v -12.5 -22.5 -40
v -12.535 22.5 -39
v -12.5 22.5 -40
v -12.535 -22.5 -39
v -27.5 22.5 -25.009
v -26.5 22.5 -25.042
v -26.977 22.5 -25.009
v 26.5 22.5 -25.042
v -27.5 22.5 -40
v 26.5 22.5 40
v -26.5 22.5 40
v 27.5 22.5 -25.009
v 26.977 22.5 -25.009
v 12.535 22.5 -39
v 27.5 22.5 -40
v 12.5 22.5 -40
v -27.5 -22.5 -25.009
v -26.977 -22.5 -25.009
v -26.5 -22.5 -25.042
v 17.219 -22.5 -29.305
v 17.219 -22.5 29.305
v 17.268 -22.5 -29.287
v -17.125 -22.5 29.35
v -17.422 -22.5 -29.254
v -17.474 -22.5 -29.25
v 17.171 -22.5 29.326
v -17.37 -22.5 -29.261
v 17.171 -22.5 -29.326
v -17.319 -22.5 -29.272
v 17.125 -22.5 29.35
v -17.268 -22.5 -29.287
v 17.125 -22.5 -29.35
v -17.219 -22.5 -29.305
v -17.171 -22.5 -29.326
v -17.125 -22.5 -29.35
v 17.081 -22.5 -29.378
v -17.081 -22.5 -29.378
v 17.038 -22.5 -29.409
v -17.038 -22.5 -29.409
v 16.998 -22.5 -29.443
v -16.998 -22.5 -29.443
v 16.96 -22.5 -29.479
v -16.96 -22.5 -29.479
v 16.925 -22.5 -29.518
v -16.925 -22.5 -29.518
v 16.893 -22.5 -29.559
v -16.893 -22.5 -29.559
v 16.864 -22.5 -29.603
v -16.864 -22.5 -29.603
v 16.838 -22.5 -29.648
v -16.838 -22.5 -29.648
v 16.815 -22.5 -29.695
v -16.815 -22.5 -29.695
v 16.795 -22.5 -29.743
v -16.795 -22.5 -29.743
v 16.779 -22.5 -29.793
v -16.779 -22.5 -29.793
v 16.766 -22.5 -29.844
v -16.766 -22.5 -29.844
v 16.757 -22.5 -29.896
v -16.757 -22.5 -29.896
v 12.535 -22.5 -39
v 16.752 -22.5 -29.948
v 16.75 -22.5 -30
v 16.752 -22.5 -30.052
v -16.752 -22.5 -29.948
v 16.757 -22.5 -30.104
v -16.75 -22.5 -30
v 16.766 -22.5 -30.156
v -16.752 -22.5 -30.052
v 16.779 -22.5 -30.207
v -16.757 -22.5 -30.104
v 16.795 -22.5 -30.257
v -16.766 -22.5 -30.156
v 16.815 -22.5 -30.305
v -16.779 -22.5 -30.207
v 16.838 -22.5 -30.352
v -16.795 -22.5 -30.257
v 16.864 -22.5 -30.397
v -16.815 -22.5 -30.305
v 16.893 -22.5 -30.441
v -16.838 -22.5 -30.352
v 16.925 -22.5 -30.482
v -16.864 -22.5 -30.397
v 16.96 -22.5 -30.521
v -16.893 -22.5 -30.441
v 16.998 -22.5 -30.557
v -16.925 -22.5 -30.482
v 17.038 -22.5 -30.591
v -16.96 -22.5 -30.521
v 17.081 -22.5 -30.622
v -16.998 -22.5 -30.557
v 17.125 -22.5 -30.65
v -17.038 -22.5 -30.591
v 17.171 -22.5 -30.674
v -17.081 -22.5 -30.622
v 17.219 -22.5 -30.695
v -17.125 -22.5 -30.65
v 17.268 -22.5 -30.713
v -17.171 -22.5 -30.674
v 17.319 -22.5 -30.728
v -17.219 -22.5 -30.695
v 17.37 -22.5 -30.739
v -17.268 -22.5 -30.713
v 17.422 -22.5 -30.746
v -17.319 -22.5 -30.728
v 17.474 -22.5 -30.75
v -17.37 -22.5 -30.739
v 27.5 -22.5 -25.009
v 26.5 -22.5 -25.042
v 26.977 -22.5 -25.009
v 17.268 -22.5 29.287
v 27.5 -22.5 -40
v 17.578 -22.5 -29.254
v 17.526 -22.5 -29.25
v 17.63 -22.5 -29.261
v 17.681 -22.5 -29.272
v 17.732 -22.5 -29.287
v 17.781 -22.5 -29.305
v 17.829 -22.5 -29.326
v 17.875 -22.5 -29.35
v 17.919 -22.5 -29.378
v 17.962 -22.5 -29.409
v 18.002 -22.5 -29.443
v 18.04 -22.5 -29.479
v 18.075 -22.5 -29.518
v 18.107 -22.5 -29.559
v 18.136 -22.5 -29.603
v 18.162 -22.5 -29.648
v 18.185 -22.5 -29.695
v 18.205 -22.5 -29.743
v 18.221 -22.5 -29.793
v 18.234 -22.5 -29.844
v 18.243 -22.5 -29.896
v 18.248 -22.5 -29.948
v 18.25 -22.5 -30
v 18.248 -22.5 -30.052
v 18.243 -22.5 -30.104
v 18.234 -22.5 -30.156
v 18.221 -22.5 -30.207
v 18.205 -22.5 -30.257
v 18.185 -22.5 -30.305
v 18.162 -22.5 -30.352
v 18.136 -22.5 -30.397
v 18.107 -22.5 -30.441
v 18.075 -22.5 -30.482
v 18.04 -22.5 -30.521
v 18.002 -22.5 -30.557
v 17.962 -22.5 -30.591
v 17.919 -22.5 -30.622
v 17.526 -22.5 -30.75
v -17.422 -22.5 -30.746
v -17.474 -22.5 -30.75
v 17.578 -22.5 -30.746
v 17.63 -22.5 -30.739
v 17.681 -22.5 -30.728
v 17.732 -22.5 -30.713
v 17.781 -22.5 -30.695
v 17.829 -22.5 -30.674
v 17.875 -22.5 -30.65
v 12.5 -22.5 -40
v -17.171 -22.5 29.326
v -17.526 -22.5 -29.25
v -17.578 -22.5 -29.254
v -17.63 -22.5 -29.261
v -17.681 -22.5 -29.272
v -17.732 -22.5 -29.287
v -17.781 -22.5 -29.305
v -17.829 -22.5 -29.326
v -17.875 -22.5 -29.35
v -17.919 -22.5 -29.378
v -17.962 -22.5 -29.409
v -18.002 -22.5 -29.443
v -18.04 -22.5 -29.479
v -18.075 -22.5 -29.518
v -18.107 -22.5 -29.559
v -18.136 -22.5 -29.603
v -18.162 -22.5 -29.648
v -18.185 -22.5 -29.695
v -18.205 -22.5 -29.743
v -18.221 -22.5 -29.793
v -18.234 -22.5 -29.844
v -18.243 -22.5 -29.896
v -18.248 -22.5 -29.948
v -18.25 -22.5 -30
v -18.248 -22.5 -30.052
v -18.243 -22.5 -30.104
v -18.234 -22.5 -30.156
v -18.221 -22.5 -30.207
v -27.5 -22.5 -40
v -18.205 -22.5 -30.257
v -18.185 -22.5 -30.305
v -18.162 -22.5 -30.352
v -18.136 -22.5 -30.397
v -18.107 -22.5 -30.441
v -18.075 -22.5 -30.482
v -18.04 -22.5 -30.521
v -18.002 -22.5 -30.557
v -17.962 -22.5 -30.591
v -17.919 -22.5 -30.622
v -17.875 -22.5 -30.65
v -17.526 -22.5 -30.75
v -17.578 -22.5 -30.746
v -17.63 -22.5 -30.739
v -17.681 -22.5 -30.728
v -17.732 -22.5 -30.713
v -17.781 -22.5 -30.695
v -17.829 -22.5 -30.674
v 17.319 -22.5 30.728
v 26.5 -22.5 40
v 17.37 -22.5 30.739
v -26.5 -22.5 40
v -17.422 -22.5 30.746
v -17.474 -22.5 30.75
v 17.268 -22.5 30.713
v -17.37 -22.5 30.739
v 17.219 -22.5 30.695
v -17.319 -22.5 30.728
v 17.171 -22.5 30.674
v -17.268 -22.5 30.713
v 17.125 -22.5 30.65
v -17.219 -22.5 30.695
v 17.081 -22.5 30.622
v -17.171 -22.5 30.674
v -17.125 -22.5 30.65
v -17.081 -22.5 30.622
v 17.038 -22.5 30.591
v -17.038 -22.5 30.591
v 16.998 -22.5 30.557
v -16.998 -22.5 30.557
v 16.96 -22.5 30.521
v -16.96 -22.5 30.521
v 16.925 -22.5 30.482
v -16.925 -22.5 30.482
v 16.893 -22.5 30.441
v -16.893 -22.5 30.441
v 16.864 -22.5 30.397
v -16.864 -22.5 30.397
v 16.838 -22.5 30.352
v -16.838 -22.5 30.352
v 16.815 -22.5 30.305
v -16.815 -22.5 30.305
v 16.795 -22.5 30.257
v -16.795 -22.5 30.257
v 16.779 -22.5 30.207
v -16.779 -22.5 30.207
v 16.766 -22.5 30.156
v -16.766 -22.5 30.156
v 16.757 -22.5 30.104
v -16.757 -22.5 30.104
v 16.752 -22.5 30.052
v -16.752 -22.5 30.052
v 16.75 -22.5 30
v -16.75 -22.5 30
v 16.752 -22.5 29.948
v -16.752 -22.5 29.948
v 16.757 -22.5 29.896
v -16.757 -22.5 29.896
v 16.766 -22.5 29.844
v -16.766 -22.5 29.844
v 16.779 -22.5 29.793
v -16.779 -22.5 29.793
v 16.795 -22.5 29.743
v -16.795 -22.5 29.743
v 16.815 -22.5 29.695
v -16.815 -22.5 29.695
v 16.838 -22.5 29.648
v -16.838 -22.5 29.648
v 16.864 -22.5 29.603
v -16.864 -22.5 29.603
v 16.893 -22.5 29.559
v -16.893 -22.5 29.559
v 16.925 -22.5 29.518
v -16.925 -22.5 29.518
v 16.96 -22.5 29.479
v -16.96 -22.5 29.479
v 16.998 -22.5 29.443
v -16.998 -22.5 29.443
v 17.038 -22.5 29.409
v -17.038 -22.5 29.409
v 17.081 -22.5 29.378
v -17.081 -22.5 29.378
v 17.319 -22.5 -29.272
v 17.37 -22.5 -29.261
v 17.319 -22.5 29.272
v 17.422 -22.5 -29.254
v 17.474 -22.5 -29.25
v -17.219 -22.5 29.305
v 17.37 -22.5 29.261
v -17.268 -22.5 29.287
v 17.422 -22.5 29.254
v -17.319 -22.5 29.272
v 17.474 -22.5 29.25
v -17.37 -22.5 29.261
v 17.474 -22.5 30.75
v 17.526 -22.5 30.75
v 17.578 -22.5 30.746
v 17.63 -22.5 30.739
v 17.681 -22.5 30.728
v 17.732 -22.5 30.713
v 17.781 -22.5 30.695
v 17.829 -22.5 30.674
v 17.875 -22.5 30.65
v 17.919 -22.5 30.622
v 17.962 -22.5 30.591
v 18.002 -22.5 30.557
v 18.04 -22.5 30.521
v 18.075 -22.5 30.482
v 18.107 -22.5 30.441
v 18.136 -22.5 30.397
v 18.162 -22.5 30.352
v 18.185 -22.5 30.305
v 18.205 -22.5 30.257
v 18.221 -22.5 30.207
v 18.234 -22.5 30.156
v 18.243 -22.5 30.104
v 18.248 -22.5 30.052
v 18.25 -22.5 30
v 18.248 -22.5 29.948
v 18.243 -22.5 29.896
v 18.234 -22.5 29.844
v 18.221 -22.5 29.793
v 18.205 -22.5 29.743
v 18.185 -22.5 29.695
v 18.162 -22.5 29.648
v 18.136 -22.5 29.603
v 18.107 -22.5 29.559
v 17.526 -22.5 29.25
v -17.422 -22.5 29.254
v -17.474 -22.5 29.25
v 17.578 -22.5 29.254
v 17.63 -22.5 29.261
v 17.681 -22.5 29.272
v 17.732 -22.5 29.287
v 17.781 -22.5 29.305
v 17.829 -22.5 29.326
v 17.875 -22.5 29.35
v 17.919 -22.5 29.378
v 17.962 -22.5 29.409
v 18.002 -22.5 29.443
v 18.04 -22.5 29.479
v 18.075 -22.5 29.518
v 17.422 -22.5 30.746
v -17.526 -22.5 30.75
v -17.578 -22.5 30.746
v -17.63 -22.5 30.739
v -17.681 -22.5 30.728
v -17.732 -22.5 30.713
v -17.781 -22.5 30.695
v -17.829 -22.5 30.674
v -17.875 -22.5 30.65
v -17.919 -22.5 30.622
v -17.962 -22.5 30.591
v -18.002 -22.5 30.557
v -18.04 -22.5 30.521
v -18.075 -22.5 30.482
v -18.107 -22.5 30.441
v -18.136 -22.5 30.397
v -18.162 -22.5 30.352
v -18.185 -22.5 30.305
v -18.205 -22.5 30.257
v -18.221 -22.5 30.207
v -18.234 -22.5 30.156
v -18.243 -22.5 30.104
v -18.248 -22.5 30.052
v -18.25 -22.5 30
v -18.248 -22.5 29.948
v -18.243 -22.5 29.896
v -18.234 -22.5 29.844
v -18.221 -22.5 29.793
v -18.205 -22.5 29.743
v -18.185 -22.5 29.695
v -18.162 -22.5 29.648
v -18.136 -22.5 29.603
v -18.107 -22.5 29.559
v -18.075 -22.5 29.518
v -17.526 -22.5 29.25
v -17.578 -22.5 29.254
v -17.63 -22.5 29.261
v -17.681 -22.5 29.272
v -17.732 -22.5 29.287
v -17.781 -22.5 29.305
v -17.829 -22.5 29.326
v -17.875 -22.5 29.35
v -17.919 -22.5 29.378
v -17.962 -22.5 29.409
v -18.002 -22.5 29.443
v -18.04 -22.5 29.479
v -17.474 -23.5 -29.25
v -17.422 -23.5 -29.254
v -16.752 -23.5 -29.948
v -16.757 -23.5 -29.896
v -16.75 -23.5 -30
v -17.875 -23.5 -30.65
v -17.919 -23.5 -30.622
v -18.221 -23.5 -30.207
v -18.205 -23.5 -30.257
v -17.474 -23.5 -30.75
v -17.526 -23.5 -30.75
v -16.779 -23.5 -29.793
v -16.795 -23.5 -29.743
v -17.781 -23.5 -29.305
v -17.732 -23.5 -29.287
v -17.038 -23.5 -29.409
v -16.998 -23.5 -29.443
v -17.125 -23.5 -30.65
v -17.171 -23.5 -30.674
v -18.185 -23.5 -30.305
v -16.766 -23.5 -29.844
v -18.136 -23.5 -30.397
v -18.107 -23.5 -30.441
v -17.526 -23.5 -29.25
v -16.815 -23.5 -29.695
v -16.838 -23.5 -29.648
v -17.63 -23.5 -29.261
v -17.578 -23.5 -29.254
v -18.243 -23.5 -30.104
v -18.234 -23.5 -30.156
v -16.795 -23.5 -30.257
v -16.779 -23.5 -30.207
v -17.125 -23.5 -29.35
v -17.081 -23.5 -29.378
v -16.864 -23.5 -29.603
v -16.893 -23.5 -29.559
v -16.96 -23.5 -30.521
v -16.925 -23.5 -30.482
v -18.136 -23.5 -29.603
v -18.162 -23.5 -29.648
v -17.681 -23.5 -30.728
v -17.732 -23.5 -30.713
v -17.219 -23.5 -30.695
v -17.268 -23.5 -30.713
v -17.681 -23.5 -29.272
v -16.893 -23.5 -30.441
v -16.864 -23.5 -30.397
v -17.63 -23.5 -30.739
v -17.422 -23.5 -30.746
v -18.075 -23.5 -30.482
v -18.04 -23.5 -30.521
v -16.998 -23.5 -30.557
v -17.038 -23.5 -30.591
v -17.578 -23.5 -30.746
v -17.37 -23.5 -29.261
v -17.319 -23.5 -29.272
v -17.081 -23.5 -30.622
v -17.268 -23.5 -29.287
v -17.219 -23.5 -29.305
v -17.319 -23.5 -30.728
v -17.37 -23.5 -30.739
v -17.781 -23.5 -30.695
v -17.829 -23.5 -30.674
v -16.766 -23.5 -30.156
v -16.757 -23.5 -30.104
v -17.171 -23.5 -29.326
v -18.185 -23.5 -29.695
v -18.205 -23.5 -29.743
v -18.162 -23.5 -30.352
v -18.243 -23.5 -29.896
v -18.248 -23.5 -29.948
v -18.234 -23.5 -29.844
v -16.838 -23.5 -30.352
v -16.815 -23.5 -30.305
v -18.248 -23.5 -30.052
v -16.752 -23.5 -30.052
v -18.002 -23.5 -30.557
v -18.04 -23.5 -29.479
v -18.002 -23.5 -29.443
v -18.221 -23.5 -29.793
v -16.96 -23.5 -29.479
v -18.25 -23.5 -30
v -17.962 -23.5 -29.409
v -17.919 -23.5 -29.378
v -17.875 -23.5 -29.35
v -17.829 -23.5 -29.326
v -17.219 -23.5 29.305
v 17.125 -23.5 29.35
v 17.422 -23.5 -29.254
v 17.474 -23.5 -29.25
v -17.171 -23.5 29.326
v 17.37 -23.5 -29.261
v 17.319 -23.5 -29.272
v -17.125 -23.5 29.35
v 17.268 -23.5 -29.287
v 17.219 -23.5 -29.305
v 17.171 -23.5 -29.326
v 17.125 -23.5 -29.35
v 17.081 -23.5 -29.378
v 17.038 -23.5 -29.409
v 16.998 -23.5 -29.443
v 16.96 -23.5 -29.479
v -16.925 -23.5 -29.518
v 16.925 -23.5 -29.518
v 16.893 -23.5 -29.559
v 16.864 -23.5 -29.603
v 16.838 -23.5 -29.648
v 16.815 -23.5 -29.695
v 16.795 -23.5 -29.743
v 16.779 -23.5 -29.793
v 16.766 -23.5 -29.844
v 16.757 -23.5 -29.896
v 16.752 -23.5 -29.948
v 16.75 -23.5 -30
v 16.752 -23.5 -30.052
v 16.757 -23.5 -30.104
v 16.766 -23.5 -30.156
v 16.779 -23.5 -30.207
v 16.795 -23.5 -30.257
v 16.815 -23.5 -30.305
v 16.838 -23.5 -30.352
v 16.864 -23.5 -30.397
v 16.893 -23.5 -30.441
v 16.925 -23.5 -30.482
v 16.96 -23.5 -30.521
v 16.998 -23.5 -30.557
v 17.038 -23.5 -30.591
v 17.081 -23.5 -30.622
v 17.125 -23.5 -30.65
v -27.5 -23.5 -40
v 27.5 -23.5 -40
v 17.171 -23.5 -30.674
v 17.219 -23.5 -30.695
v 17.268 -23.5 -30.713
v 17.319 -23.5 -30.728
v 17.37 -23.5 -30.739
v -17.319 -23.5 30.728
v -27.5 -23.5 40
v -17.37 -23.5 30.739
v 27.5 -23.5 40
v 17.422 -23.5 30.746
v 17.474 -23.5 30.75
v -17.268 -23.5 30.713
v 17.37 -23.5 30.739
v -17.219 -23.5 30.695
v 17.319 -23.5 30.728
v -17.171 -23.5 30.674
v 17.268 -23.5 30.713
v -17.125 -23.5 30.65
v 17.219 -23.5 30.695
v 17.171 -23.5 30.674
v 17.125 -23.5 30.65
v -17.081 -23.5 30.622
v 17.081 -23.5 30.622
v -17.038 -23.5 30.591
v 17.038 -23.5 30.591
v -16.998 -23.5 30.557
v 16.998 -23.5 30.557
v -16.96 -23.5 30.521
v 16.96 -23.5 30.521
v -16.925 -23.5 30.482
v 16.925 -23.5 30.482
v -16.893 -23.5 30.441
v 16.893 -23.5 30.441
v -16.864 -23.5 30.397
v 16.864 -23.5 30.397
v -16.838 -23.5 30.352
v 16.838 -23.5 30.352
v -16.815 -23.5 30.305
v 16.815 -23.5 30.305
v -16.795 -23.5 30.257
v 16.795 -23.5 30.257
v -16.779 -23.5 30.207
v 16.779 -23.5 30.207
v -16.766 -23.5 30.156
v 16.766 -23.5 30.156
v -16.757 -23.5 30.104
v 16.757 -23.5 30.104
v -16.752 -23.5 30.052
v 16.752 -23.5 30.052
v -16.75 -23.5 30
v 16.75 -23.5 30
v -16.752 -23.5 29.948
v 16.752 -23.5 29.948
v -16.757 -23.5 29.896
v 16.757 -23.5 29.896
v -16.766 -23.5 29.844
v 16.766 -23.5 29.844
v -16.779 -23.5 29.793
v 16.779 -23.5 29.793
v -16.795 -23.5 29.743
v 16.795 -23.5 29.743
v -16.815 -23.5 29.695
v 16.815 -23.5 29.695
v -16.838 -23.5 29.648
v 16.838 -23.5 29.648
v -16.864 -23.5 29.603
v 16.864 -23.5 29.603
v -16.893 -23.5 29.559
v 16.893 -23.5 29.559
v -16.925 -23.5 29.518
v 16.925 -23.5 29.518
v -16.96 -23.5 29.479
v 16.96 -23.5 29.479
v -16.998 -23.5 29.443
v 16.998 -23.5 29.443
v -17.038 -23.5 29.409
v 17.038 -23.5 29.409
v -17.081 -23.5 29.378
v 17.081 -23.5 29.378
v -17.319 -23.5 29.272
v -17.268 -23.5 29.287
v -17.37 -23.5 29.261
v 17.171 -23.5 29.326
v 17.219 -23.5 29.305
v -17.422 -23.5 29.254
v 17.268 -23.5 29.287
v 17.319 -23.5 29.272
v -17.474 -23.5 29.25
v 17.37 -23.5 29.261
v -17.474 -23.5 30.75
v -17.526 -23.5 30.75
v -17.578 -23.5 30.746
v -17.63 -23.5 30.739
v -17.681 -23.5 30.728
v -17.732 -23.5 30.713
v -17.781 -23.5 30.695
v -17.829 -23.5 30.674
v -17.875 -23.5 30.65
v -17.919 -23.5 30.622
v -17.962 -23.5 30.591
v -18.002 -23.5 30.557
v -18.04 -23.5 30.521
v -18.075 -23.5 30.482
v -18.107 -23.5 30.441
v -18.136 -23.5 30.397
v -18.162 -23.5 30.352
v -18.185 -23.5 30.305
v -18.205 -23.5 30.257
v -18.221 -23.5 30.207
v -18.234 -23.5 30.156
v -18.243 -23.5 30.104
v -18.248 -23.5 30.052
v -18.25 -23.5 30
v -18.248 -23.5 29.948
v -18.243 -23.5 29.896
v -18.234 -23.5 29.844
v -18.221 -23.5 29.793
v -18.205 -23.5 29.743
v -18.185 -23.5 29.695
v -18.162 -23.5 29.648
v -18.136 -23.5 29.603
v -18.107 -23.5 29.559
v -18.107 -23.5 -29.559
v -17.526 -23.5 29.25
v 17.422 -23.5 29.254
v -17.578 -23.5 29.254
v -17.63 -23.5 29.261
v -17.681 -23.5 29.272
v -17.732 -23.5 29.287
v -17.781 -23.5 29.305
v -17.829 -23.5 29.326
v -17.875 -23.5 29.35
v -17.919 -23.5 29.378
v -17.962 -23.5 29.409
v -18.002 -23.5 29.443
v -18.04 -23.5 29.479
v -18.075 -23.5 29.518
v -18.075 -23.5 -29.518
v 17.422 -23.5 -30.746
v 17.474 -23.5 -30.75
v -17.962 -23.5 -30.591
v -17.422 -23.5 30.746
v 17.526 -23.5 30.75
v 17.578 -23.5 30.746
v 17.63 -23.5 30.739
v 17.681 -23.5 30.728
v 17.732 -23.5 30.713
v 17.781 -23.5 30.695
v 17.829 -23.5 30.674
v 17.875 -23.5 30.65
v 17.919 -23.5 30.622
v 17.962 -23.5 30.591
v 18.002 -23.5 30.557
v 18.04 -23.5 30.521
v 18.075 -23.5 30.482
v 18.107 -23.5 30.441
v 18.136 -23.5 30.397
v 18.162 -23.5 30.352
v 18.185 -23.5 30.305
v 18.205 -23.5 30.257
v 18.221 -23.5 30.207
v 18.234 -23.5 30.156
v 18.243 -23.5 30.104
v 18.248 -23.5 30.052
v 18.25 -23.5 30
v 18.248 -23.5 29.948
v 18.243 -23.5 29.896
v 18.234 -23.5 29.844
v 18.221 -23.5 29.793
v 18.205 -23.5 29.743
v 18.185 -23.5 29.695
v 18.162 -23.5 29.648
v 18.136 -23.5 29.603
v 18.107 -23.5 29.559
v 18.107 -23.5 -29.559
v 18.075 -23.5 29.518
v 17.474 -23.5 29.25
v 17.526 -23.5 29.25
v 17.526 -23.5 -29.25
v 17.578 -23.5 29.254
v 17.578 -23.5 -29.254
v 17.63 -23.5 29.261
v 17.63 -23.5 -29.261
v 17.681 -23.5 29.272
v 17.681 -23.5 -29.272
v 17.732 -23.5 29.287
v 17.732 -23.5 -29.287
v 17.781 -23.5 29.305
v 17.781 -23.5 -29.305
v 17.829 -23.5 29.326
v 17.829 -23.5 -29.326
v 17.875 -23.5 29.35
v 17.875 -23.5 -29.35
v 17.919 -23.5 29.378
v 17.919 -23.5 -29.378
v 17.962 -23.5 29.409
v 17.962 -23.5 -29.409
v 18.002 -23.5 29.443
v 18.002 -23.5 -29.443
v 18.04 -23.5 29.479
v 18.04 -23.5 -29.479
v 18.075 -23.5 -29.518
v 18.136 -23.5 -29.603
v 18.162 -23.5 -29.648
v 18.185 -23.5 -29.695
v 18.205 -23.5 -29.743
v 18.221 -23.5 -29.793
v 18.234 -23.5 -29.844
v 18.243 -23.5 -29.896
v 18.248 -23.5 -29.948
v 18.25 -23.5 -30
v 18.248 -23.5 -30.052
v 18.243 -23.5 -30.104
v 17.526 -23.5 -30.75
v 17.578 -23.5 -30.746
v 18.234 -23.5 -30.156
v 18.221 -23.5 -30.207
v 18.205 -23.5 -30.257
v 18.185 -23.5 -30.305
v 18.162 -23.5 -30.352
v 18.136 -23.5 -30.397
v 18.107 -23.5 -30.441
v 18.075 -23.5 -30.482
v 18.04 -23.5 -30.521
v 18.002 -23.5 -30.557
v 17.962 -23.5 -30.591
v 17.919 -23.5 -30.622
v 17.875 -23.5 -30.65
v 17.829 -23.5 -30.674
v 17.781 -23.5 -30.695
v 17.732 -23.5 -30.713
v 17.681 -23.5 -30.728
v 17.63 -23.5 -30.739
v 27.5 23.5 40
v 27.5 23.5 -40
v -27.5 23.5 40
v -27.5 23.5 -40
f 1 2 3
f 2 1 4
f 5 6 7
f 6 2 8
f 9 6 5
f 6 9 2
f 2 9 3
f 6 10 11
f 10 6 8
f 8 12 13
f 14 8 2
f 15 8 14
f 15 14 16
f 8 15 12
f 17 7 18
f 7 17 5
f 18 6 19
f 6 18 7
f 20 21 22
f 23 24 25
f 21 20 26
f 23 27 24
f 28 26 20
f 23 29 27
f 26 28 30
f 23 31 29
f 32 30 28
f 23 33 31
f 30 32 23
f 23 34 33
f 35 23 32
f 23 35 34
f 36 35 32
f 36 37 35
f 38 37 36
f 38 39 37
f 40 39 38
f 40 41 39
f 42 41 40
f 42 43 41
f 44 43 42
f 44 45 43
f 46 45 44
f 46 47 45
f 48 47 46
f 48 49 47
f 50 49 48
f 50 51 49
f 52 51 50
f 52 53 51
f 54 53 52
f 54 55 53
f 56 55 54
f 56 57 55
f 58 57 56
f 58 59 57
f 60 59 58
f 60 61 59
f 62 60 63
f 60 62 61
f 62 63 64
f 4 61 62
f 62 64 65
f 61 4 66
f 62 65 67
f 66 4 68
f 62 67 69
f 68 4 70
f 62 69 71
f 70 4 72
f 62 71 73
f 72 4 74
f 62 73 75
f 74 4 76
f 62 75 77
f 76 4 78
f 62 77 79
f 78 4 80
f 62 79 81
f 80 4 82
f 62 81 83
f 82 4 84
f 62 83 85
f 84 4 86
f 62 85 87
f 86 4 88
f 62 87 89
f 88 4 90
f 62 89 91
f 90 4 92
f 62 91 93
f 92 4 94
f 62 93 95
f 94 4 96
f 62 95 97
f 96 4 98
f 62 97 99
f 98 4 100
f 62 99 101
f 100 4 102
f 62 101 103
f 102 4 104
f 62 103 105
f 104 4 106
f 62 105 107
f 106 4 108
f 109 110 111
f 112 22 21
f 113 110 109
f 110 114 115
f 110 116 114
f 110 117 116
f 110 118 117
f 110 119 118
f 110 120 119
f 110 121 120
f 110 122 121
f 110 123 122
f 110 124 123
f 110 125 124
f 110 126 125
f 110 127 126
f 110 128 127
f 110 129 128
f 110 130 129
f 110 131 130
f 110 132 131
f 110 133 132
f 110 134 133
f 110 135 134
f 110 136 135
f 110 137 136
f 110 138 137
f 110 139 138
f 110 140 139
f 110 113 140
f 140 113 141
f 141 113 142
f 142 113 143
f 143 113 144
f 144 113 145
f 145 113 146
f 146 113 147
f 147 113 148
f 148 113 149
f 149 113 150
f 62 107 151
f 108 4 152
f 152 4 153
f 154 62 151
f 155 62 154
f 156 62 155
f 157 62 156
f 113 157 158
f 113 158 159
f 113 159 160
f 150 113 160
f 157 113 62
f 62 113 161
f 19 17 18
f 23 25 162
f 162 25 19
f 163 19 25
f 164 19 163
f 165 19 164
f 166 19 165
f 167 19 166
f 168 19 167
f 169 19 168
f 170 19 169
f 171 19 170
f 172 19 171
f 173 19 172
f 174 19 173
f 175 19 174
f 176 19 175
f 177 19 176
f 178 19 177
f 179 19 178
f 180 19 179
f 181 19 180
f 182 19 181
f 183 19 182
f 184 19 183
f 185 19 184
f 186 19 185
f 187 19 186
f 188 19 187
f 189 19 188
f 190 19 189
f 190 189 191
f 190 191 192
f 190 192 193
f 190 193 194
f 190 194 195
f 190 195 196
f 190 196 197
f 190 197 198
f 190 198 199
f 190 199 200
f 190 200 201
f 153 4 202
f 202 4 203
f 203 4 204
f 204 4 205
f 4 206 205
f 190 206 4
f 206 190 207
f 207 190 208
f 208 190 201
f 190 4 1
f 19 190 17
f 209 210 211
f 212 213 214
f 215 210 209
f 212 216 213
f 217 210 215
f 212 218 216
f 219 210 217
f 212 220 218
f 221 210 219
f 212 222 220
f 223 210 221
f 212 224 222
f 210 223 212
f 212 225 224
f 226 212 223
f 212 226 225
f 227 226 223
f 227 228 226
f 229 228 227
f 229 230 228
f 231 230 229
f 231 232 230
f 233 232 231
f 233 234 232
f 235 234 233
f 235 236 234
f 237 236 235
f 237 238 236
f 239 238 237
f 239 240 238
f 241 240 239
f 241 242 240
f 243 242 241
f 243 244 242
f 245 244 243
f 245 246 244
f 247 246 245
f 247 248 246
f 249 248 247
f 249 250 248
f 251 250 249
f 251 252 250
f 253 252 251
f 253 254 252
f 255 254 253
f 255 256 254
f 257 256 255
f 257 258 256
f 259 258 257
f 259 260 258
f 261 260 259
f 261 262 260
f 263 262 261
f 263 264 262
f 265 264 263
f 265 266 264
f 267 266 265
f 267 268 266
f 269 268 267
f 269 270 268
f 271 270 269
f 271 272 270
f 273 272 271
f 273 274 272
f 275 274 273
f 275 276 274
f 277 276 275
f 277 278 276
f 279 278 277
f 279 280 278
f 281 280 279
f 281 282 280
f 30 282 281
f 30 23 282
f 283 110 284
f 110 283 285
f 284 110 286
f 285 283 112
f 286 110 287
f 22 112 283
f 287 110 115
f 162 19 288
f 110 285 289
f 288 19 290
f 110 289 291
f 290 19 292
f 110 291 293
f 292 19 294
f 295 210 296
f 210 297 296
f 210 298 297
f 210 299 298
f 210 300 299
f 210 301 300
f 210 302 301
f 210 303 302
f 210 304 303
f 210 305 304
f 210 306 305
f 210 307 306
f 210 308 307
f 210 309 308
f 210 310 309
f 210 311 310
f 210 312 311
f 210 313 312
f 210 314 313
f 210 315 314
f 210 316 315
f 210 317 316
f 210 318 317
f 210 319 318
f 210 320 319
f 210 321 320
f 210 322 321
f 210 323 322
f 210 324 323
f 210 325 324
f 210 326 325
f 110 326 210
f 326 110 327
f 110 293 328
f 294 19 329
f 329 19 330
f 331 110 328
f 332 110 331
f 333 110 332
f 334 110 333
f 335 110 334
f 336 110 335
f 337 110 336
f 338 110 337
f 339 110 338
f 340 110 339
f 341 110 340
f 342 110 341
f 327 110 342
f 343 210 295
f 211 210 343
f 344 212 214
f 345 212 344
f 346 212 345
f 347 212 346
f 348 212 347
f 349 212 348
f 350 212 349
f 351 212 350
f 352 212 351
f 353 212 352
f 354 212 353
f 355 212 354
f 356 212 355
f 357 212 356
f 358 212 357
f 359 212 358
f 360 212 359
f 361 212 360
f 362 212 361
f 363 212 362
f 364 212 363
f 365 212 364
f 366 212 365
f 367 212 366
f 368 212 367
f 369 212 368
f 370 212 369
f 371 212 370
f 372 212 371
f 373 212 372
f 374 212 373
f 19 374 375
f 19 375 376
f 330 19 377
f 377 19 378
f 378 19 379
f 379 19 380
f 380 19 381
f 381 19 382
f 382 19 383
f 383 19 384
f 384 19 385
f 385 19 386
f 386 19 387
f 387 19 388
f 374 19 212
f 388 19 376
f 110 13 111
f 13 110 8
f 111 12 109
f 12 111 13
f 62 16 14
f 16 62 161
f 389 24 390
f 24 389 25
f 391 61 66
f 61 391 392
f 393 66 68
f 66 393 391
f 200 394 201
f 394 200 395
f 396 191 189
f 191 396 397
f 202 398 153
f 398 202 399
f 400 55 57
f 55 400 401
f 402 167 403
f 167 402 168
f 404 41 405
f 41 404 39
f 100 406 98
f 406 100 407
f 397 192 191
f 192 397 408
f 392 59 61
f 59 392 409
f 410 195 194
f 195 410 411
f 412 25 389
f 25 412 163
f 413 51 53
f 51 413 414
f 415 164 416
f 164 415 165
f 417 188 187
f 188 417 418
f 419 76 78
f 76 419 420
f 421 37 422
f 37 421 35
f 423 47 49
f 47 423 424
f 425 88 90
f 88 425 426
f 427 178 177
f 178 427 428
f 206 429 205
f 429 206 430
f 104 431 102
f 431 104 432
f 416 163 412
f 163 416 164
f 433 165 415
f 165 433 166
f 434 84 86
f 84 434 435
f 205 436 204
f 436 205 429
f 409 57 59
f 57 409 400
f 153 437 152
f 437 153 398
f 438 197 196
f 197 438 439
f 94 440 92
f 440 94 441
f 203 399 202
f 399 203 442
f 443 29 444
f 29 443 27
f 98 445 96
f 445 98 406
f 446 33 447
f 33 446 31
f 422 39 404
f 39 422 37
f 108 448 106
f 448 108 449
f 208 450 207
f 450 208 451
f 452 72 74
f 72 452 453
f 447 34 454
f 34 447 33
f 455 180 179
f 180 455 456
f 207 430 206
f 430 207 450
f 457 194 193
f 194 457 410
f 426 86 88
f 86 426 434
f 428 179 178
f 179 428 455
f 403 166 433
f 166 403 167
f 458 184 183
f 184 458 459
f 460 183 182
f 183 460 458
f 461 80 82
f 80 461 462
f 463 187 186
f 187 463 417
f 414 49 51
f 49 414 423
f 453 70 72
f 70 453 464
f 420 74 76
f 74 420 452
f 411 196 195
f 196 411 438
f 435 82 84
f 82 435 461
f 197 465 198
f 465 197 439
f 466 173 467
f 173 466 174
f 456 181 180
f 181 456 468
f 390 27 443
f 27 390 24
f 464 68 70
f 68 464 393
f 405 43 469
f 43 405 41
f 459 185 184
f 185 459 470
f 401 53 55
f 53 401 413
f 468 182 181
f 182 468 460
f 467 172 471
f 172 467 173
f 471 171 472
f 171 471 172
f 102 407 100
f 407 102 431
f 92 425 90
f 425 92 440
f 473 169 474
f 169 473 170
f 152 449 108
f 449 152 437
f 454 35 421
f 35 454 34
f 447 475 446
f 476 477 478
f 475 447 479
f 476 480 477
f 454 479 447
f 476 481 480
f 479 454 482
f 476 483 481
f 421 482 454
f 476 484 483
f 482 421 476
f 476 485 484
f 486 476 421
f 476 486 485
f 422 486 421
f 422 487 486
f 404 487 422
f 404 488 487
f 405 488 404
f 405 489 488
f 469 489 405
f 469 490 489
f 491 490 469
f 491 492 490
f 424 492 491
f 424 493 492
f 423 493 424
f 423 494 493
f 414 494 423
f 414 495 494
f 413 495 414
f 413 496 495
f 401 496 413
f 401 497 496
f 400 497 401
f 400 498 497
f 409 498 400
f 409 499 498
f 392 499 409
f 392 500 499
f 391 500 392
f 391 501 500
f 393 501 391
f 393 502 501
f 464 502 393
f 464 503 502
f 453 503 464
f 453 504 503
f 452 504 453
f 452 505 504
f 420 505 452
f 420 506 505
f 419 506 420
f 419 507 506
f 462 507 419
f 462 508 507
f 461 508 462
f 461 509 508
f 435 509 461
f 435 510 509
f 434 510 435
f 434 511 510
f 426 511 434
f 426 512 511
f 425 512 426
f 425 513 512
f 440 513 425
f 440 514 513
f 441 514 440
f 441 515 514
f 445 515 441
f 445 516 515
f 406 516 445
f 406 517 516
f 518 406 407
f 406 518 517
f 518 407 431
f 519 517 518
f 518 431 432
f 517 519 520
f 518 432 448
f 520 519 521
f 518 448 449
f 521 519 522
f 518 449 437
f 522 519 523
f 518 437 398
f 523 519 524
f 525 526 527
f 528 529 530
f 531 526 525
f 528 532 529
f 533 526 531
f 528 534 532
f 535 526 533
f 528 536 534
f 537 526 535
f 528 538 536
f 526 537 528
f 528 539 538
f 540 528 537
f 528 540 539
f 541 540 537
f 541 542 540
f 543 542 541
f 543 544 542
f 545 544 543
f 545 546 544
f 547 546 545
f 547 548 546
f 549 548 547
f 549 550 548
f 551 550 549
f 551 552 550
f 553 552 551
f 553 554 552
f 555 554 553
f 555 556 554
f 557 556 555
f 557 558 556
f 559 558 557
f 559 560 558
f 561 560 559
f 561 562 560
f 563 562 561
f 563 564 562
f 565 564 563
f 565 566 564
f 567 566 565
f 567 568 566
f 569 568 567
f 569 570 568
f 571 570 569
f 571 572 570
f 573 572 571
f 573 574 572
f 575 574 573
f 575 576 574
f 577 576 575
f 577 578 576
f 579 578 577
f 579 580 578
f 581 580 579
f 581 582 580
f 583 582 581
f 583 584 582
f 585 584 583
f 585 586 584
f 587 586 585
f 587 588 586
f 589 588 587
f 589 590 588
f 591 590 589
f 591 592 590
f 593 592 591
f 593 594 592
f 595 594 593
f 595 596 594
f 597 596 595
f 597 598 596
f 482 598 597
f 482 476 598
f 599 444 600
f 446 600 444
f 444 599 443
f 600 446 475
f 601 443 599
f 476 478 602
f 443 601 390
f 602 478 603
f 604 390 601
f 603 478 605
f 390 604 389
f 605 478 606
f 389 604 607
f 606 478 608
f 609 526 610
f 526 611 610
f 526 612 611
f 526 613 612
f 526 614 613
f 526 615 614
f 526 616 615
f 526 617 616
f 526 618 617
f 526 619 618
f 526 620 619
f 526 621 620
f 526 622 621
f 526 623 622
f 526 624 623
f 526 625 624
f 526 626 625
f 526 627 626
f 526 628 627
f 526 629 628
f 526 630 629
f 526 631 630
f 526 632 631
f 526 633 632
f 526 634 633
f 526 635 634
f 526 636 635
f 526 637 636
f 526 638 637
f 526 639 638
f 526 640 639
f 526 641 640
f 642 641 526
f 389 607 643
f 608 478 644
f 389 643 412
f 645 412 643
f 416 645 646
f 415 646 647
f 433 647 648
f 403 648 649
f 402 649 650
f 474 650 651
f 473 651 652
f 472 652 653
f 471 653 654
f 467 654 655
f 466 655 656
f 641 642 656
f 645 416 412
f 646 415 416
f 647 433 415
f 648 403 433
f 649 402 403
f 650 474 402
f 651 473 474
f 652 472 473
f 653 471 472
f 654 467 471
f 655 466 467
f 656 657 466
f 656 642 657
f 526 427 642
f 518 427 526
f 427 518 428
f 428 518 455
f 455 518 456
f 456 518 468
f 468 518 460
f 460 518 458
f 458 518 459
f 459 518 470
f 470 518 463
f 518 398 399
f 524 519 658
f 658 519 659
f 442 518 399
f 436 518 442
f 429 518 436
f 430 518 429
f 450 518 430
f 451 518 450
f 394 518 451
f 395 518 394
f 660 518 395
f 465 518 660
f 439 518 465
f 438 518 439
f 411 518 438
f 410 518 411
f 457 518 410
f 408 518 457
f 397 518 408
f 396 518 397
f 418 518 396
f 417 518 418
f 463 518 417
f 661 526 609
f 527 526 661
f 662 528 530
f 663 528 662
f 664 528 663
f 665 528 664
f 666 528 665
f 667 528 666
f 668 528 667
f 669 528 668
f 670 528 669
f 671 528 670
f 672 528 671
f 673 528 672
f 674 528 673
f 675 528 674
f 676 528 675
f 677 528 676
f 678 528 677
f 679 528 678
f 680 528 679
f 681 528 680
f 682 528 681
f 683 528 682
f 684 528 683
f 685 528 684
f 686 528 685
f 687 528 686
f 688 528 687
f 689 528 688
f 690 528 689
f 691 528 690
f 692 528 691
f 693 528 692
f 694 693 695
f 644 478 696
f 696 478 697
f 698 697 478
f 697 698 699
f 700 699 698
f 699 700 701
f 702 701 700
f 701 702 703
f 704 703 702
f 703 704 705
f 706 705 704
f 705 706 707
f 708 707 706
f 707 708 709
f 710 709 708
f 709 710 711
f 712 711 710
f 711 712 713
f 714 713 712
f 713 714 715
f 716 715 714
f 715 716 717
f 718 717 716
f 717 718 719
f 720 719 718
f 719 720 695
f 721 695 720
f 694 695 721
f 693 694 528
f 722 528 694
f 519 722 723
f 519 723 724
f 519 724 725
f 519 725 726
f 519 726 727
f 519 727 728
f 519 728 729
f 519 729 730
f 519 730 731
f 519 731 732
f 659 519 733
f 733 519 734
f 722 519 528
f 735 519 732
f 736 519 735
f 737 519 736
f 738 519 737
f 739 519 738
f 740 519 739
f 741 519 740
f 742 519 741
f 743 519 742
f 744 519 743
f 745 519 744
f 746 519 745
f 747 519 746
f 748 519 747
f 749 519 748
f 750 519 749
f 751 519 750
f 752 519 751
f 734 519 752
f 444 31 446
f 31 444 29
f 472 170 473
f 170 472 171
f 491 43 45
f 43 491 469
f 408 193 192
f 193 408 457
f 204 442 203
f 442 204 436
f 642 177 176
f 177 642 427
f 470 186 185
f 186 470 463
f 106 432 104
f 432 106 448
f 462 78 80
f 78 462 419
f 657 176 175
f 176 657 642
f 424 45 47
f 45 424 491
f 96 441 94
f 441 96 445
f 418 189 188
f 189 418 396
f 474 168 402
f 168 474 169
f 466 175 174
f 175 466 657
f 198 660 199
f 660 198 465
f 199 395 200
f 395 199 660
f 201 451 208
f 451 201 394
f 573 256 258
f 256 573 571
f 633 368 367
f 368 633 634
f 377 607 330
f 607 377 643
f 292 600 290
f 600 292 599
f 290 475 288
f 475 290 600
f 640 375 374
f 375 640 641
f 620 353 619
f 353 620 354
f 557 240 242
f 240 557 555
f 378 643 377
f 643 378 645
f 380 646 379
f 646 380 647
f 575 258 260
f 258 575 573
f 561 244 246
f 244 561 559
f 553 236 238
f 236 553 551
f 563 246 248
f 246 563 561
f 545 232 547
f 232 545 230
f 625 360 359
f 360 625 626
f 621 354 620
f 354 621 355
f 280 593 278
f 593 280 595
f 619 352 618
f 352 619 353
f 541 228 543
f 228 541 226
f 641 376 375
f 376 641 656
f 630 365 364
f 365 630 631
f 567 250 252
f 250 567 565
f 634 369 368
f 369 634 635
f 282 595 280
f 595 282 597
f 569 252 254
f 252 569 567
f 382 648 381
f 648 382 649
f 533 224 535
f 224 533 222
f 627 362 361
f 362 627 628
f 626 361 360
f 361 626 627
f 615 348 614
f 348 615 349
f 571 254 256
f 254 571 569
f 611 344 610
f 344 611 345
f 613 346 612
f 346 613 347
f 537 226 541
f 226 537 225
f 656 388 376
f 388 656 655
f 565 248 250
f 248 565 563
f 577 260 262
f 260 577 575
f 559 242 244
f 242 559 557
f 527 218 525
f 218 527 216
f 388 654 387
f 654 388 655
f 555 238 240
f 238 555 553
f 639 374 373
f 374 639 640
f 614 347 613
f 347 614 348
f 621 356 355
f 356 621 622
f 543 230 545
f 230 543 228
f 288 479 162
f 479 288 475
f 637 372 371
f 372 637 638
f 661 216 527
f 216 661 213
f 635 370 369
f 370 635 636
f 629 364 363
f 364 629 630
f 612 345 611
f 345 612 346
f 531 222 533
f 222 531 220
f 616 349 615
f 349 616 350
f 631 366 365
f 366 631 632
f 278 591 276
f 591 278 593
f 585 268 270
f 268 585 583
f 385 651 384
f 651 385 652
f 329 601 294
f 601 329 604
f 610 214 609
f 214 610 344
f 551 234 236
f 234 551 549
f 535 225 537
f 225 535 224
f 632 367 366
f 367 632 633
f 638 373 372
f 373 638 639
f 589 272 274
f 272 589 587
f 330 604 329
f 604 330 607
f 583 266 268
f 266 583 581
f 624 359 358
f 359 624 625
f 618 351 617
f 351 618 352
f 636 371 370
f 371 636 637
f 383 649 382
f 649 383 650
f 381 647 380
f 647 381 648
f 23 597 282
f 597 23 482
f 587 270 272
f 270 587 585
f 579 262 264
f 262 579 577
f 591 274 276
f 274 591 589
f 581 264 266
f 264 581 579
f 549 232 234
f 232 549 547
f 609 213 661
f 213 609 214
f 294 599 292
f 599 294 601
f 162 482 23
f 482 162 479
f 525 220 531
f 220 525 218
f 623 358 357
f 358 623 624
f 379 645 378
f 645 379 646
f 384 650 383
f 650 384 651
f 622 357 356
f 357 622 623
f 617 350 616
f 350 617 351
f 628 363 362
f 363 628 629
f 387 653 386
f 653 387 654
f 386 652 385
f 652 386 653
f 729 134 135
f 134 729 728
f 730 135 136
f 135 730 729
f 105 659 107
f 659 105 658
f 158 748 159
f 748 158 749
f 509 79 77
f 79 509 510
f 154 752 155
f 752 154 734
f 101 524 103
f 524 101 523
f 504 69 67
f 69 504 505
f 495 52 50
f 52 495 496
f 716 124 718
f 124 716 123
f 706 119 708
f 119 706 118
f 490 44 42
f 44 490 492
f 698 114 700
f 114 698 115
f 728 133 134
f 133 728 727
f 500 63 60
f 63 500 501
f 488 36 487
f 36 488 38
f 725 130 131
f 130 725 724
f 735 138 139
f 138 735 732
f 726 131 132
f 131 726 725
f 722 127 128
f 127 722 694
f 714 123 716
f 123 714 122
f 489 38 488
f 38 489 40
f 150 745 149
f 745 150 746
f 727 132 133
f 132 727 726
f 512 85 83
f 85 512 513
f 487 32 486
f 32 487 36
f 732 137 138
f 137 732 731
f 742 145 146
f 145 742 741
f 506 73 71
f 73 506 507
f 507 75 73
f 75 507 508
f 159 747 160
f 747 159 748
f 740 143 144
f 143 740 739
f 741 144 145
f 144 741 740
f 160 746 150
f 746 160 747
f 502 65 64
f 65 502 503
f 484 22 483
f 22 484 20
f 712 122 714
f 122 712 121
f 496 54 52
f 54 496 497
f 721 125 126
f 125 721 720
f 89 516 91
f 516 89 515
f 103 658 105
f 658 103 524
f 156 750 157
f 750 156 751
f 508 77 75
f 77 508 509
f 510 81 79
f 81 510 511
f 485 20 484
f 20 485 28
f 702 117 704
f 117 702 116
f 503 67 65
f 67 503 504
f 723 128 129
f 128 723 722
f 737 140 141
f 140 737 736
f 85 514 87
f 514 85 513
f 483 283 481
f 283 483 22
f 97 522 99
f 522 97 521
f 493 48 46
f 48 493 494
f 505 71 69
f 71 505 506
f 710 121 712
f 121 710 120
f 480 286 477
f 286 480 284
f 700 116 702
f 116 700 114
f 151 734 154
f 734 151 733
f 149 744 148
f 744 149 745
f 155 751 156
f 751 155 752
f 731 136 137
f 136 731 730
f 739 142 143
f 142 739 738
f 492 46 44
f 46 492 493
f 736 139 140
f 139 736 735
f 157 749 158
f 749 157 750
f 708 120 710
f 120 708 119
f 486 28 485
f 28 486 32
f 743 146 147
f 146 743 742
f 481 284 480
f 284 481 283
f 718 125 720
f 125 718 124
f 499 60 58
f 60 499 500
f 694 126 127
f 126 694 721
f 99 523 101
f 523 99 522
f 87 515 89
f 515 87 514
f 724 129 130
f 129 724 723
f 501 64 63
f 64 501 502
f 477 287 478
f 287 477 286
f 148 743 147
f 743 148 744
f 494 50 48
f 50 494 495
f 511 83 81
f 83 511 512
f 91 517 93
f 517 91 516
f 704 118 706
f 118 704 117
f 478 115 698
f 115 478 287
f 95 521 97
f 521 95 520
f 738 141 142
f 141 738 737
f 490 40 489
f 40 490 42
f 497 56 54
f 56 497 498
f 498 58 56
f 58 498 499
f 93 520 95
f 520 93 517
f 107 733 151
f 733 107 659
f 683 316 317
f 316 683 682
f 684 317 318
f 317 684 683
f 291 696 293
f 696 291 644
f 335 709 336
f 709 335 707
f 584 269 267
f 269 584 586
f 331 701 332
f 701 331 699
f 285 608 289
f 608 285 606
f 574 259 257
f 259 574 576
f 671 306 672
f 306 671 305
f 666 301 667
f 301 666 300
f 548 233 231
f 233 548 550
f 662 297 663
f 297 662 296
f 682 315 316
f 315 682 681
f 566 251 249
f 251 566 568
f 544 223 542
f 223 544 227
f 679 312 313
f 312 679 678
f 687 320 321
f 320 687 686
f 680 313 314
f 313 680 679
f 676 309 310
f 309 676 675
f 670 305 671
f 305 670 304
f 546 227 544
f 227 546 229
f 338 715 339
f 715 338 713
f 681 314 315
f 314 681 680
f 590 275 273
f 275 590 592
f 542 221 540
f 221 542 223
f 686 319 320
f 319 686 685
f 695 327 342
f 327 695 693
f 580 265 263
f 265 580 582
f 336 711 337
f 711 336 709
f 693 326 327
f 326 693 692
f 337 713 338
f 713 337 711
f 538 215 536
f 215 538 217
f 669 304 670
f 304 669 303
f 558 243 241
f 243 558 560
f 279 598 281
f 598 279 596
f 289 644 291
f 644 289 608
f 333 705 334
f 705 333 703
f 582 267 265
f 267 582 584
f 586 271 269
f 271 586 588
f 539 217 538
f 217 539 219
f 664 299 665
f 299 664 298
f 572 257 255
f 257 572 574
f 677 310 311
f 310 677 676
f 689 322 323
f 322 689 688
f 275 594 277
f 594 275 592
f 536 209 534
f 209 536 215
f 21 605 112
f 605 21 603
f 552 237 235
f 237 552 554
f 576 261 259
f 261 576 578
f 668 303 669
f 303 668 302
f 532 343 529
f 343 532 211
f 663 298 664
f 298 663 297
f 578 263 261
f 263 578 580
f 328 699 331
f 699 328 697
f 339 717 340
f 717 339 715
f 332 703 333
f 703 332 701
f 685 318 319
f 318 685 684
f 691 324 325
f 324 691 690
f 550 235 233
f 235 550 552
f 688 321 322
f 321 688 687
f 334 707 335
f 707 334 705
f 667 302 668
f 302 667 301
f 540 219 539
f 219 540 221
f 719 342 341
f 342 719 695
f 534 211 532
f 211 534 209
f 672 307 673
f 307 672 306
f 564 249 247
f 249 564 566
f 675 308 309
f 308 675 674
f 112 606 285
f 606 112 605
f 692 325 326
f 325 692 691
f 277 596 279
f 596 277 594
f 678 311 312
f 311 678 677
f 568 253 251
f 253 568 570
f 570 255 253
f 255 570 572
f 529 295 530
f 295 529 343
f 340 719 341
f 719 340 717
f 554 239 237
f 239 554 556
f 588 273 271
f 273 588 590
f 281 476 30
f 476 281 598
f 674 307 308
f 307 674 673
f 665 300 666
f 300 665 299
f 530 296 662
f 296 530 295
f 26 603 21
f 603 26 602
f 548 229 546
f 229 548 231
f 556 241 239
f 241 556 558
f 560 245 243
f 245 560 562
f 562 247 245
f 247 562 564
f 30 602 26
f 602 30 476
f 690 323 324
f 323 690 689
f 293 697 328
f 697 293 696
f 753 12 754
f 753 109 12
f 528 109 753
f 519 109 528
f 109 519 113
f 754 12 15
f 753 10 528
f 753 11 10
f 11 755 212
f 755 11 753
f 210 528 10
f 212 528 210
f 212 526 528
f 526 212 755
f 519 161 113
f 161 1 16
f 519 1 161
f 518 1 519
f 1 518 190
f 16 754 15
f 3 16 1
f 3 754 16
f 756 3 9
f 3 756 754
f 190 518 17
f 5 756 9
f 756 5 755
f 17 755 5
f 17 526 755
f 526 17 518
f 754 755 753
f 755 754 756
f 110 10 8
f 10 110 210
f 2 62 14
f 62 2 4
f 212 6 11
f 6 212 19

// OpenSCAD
$fn = 90;
wallThickness = 1;
width = 55;
depth = 47;
height = 80;

difference(){
	cube([width, depth, height], center=true);

	translate([0, 0, wallThickness])
		#cube([width-2*wallThickness, depth-2*wallThickness, height], center=true);

	grabbingHoles();
	
	mountingHoles();
}

module grabbingHoles(){
	xAbs = width/2;
	for(x = [-xAbs, xAbs]){
		translate([x, 0, -height/2])
			rotate([90, 0, 0])
				#cylinder(d=30, h=depth-2*wallThickness, center=true);
	}
}

module mountingHoles(){
	distance = 10;
	xAbs = width/2 - distance;
	zAbs = height/2 - distance;
	
	for(x = [-xAbs, xAbs]){
		for(z = [-zAbs, zAbs]){
			translate([x, 0, z])
				rotate([90, 0, 0])
					#cylinder(d=1.5, h=depth/2);
		}
	}
}
